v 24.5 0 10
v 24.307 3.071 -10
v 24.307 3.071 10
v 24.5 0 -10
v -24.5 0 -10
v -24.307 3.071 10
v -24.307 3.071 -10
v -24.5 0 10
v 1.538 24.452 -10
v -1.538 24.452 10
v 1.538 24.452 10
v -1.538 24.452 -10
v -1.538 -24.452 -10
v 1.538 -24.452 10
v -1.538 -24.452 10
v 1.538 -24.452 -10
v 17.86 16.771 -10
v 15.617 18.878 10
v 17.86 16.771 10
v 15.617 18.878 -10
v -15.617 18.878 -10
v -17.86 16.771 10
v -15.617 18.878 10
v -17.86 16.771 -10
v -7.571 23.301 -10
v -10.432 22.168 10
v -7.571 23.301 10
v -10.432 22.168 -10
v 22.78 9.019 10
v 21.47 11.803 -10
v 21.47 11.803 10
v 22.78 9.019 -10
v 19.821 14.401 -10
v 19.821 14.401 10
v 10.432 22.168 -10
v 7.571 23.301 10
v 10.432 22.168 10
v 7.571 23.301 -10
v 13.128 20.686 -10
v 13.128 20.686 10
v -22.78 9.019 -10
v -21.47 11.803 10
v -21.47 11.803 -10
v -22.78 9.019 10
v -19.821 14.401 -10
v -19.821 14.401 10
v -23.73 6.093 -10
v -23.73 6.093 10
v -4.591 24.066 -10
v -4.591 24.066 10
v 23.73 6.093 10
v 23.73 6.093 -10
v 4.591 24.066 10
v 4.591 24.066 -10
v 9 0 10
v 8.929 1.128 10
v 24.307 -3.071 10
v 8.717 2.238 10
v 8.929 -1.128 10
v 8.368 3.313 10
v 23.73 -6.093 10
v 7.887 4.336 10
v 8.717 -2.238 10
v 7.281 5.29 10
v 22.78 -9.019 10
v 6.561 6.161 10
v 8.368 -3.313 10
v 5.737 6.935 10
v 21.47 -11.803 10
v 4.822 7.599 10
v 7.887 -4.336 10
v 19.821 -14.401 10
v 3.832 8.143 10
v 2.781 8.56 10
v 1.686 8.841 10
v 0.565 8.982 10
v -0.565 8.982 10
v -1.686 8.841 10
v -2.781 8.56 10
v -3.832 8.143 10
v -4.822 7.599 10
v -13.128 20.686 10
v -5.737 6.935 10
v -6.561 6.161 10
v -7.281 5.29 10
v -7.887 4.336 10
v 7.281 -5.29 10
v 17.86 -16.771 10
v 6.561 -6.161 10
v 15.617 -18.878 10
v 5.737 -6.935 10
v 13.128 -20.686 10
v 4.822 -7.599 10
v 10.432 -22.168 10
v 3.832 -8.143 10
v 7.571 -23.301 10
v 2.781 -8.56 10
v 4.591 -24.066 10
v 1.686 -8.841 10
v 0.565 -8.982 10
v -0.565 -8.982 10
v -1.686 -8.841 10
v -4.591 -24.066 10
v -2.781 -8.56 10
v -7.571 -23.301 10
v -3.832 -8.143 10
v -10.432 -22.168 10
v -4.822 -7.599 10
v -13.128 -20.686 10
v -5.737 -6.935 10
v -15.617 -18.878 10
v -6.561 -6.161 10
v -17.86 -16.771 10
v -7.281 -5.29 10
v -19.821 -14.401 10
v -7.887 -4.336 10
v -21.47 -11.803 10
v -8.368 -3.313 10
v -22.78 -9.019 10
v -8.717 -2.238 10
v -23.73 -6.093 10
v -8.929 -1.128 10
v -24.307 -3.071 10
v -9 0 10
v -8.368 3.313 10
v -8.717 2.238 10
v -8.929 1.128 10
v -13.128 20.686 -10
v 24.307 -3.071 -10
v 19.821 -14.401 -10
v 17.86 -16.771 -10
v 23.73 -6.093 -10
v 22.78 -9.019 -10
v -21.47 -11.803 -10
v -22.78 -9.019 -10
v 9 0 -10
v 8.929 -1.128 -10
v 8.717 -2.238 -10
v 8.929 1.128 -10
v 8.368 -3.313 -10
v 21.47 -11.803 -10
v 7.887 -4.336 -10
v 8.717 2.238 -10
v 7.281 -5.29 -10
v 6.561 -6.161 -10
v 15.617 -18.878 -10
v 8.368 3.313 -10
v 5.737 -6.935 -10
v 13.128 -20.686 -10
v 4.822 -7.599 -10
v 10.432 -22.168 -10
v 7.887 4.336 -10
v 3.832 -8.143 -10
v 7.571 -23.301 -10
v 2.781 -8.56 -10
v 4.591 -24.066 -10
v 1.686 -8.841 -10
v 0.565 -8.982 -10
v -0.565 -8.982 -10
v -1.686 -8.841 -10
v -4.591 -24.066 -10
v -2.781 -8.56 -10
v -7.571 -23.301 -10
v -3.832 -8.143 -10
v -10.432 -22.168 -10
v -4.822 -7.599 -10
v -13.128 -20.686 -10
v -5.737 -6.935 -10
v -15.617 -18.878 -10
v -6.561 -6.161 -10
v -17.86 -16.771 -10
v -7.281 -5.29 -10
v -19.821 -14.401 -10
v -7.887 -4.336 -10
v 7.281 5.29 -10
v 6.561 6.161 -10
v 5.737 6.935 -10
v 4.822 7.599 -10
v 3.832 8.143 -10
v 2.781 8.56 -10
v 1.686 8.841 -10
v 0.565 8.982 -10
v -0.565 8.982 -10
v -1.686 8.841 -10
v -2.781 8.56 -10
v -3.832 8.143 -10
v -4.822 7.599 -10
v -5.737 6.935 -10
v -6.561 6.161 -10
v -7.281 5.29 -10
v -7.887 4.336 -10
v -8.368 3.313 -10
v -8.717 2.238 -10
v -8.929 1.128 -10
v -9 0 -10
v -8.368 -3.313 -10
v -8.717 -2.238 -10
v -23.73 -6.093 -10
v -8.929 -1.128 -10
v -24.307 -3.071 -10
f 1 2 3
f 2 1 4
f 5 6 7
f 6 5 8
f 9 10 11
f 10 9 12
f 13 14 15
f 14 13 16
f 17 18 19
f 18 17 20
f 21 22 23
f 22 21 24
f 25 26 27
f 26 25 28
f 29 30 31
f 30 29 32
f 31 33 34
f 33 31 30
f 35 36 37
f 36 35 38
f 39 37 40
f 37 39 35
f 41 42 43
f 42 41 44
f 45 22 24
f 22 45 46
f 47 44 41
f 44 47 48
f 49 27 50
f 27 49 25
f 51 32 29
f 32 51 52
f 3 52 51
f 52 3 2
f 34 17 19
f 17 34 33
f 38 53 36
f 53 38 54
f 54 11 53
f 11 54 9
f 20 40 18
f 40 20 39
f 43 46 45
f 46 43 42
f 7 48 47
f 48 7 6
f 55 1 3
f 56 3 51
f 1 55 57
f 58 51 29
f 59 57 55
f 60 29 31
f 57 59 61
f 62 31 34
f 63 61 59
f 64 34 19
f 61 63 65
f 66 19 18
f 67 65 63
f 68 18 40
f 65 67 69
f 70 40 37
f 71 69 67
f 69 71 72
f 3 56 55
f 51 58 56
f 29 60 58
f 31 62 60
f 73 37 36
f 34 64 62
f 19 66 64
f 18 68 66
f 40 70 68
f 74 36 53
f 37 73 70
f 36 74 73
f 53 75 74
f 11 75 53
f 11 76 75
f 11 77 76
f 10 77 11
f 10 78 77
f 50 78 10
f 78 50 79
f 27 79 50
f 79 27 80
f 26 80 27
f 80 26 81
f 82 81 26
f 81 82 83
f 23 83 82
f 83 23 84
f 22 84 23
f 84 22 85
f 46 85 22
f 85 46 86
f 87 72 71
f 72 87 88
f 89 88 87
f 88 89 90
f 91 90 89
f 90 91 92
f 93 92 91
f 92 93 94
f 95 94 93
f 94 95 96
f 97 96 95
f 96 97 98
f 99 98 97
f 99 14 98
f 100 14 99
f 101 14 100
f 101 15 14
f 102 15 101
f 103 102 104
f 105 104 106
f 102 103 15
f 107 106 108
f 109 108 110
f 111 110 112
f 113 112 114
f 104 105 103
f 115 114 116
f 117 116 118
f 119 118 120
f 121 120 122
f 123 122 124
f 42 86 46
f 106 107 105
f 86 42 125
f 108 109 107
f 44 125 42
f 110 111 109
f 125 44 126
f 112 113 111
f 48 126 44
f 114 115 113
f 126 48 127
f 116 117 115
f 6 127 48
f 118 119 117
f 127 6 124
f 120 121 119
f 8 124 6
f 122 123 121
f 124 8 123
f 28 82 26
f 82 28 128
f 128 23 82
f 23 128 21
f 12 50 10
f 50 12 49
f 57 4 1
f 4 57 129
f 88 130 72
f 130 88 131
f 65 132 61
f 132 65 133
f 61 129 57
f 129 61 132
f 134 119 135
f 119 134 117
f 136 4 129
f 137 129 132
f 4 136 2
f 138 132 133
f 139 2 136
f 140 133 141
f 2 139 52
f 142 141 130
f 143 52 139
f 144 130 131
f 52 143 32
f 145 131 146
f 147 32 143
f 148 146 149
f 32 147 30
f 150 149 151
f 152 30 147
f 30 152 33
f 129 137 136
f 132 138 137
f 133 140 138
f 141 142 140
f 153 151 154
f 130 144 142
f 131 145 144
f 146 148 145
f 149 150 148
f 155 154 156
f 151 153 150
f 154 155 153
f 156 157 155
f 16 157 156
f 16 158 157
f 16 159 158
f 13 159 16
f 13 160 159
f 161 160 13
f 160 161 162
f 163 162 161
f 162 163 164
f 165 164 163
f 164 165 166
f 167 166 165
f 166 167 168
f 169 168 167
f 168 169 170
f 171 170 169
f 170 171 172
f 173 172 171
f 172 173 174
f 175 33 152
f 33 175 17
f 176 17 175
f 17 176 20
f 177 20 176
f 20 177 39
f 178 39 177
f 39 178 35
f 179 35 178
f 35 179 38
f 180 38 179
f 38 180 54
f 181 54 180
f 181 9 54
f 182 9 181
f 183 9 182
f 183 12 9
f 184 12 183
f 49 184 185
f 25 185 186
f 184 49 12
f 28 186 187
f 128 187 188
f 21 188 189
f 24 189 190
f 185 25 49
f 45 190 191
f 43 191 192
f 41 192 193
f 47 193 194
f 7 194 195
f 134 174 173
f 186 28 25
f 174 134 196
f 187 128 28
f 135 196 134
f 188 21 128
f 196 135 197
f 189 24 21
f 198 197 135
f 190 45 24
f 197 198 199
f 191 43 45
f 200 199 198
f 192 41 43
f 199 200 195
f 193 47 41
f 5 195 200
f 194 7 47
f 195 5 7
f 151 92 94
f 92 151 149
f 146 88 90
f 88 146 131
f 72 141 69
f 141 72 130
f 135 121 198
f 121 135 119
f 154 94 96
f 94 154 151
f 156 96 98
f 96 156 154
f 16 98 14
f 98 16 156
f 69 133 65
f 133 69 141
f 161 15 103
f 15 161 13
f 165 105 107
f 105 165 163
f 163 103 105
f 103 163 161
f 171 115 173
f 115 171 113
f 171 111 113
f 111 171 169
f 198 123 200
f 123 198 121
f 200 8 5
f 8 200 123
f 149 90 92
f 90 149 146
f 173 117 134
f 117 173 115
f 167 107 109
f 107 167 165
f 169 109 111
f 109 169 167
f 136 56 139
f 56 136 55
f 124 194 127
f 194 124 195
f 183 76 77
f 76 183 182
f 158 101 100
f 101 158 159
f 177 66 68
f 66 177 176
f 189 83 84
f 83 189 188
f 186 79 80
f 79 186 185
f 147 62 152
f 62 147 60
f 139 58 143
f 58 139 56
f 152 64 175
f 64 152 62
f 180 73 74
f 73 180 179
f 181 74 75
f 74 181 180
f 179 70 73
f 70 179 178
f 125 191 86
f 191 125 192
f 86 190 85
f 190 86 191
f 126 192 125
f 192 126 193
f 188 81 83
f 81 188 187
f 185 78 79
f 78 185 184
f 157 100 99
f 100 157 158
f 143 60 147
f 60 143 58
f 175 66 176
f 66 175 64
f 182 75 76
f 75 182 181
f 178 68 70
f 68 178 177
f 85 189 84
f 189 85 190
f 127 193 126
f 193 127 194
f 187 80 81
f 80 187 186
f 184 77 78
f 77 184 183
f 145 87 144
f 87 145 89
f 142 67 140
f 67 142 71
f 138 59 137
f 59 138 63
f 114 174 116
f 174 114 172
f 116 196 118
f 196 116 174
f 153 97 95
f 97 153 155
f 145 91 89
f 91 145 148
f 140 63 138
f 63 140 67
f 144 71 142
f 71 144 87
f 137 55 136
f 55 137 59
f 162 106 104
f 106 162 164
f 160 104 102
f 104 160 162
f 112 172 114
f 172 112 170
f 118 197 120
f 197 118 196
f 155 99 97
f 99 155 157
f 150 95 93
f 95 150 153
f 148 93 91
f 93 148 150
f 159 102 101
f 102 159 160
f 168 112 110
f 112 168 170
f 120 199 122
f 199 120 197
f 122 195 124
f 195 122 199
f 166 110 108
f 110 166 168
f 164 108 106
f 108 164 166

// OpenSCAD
$fn = 50;


difference() {
	union() {
		translate(v = [0, 0, -10.0000000000]) {
			cylinder(h = 20, r = 24.5000000000);
		}
	}
	union() {
		translate(v = [0, 0, -100.0000000000]) {
			cylinder(h = 200, r = 9);
		}
	}
}
